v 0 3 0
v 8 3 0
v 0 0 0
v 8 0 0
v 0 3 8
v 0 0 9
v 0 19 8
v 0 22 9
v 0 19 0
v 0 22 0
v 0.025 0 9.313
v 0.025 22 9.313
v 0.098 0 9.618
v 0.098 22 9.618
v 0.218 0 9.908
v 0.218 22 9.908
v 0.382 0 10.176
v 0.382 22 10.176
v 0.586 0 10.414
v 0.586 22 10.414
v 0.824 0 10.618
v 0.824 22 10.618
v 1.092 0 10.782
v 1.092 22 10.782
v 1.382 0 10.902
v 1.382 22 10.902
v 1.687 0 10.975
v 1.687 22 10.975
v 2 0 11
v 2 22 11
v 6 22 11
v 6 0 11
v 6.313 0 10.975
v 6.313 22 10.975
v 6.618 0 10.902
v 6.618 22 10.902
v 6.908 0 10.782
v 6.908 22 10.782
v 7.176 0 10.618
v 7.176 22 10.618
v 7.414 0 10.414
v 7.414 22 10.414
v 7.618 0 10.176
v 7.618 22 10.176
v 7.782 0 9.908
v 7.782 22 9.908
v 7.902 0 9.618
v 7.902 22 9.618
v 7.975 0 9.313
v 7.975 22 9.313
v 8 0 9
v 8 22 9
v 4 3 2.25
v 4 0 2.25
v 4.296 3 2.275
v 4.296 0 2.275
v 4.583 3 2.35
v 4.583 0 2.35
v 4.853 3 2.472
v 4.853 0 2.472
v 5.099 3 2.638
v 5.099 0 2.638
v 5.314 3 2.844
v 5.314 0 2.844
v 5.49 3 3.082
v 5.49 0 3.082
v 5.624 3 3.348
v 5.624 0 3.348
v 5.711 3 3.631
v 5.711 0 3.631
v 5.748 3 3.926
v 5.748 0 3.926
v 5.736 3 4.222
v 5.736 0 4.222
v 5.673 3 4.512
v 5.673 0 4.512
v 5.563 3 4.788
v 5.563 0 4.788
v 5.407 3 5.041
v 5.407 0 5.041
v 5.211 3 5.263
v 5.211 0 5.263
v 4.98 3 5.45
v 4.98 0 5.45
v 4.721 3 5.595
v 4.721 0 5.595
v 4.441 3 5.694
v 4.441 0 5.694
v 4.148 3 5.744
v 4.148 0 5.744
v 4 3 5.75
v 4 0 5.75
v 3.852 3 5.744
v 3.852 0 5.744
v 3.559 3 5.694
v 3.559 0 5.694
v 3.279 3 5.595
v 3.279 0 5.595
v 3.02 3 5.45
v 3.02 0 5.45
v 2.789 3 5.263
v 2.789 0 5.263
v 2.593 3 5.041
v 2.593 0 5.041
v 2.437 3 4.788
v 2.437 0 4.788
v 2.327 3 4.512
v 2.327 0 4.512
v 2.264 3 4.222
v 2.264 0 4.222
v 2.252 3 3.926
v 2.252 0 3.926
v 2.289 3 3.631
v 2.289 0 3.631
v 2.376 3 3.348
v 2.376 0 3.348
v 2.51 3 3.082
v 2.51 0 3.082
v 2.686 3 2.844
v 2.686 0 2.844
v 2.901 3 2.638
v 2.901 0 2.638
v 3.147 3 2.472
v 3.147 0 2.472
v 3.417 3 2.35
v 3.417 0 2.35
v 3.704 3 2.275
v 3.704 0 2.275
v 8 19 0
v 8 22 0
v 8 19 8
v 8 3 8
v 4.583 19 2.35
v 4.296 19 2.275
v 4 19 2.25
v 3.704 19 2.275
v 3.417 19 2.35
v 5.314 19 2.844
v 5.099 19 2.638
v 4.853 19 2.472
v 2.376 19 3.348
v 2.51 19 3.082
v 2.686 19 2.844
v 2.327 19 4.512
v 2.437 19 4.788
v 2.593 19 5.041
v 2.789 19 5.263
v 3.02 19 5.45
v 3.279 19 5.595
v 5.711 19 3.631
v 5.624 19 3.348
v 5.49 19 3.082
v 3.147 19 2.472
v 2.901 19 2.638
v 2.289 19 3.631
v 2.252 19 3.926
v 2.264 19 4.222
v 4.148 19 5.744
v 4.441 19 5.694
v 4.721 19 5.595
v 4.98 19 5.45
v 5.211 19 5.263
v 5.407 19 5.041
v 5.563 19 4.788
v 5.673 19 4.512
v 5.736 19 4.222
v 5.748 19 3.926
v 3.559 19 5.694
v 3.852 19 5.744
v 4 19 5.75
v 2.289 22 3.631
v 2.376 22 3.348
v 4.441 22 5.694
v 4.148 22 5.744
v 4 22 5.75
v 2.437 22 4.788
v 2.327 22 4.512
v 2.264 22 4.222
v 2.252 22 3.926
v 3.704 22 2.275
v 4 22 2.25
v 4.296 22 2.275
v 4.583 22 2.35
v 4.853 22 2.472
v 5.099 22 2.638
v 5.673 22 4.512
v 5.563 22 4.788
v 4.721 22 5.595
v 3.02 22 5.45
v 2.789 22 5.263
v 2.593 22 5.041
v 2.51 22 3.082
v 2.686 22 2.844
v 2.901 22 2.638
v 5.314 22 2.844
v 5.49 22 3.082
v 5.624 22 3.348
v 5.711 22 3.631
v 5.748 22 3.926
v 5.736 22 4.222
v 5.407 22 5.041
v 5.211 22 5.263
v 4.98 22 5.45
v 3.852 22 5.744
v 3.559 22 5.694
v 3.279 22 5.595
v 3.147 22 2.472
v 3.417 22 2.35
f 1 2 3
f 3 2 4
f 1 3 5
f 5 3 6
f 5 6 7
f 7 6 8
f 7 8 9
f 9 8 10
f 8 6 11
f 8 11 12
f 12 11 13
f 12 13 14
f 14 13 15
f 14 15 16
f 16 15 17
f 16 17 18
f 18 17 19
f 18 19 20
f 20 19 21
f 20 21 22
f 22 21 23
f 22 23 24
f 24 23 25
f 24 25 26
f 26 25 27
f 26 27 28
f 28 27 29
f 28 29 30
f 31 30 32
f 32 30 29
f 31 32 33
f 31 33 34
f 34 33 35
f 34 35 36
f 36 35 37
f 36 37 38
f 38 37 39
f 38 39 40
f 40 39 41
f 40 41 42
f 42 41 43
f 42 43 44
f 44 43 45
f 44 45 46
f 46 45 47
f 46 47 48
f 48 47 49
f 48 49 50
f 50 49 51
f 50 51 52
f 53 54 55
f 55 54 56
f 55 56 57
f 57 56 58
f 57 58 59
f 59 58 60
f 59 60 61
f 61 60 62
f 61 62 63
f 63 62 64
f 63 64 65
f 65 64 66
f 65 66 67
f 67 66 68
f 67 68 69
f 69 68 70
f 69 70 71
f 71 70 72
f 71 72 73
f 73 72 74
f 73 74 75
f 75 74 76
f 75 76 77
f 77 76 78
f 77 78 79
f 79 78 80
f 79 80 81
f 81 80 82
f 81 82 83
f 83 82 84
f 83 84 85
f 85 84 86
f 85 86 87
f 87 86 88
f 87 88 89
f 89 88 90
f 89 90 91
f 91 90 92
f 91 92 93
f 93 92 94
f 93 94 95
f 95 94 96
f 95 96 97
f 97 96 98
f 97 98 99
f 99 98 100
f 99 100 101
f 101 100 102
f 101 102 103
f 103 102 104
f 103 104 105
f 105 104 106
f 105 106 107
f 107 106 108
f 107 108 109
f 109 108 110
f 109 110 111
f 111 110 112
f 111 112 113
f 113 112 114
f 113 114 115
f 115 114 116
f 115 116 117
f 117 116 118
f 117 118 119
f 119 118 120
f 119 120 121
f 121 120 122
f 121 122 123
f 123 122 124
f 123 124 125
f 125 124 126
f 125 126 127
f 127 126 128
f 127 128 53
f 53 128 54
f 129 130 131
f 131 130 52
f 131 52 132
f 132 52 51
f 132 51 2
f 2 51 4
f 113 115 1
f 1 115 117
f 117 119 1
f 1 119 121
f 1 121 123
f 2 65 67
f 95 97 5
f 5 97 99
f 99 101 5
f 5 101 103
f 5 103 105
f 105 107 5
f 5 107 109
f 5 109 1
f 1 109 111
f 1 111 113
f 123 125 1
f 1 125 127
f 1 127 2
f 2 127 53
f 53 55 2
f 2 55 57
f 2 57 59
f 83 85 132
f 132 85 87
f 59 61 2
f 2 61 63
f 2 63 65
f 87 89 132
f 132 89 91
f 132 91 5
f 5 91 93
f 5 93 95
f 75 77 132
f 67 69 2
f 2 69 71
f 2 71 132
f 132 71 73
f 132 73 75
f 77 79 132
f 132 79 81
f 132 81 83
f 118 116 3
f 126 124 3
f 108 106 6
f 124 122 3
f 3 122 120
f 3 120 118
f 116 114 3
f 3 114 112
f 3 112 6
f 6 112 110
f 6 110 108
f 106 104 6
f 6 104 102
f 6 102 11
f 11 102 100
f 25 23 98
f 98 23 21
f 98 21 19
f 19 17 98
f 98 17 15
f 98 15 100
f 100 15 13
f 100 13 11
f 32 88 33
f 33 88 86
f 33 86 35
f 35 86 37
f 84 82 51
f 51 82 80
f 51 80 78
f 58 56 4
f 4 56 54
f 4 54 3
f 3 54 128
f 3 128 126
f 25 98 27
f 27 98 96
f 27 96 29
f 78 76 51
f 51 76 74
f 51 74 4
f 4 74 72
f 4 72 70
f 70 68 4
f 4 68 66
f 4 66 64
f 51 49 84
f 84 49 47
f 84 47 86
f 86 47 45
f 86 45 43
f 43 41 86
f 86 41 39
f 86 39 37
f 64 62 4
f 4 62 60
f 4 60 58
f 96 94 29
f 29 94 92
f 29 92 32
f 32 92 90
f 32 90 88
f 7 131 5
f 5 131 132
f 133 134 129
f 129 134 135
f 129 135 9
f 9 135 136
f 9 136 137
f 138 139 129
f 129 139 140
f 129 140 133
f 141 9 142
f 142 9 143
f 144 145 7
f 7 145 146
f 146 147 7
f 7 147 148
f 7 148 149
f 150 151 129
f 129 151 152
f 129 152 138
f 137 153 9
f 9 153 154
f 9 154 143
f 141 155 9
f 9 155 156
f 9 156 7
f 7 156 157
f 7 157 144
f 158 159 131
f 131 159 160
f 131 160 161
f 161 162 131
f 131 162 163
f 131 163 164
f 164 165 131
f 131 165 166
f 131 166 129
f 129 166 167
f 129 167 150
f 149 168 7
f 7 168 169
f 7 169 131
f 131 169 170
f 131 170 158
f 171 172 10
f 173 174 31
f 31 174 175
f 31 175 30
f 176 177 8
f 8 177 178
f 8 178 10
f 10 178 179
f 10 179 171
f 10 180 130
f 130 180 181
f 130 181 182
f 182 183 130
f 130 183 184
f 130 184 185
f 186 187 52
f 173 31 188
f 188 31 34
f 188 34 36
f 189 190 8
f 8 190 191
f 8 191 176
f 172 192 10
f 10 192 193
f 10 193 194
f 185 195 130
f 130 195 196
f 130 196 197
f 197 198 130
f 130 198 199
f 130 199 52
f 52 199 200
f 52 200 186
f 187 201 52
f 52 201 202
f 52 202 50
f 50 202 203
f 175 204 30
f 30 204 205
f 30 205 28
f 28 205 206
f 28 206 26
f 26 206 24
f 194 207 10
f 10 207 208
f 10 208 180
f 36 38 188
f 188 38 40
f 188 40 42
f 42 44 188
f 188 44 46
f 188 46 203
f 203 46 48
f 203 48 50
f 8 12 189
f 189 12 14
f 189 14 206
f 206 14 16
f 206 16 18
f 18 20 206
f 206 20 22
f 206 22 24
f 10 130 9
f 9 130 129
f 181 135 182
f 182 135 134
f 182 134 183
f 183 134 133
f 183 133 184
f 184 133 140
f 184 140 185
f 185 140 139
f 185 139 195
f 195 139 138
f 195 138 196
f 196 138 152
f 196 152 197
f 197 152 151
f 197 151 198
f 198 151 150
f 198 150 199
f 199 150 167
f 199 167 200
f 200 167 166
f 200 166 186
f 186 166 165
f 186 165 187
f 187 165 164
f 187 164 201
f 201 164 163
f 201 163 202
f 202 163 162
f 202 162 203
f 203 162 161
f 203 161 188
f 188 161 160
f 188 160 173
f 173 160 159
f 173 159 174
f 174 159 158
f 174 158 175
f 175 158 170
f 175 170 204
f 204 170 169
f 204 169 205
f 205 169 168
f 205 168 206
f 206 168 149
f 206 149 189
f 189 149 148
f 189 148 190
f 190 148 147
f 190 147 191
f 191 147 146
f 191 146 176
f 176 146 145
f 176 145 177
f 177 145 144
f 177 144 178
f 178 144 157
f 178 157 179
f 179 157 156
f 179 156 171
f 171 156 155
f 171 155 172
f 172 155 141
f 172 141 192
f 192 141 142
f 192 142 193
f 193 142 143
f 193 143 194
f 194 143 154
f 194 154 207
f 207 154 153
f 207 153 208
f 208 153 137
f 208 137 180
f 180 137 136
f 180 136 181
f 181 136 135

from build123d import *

# Parameters (mm, degrees)
SKETCH_1_W      = 8
SKETCH_1_H      = 8
SKETCH_1_R      = 1.75
EXTRUDE_1_DEPTH = 3
EXTRUDE_2_DEPTH = 16
SKETCH_3_R      = 1.75
EXTRUDE_3_DEPTH = 3


with BuildPart() as part:
    # 草图1 → 凸台-拉伸1 (new body)
    with BuildSketch(Plane(origin=(0, 0, 0), x_dir=(1, 0, 0), z_dir=(0, 1, 0))):
        with Locations((4, -4)):
            Rectangle(SKETCH_1_W, SKETCH_1_H)
        with Locations((4, -4)):
            Circle(SKETCH_1_R, mode=Mode.SUBTRACT)
        with BuildLine():
            Line((8, -8), (0, -8))
            Line((0, -8), (0, -9))
            ThreePointArc((0, -9), (0.585786438, -10.414213562), (2, -11))
            Line((2, -11), (6, -11))
            ThreePointArc((6, -11), (7.414213562, -10.414213562), (8, -9))
            Line((8, -9), (8, -8))
        make_face()
    extrude(amount=EXTRUDE_1_DEPTH)

    # 草图2 → 凸台-拉伸2 (add)
    with BuildSketch(Plane(origin=(0, 3, 0), x_dir=(1, 0, 0), z_dir=(0, 1, 0))):
        with BuildLine():
            Line((8, -8), (0, -8))
            Line((0, -8), (0, -9))
            ThreePointArc((0, -9), (0.585786438, -10.414213562), (2, -11))
            Line((2, -11), (6, -11))
            ThreePointArc((6, -11), (7.414213562, -10.414213562), (8, -9))
            Line((8, -9), (8, -8))
        make_face()
    extrude(amount=EXTRUDE_2_DEPTH)

    # 草图3 → 凸台-拉伸3 (add)
    with BuildSketch(Plane(origin=(0, 19, 0), x_dir=(1, 0, 0), z_dir=(0, 1, 0))):
        with BuildLine():
            Line((8, -9), (8, -8))
            Line((8, -8), (8, 0))
            Line((8, 0), (0, 0))
            Line((0, 0), (0, -8))
            Line((0, -8), (0, -9))
            ThreePointArc((0, -9), (0.585786438, -10.414213562), (2, -11))
            Line((2, -11), (6, -11))
            ThreePointArc((6, -11), (7.414213562, -10.414213562), (8, -9))
        make_face()
        with Locations((4, -4)):
            Circle(SKETCH_3_R, mode=Mode.SUBTRACT)
    extrude(amount=EXTRUDE_3_DEPTH)


solid = part.part
